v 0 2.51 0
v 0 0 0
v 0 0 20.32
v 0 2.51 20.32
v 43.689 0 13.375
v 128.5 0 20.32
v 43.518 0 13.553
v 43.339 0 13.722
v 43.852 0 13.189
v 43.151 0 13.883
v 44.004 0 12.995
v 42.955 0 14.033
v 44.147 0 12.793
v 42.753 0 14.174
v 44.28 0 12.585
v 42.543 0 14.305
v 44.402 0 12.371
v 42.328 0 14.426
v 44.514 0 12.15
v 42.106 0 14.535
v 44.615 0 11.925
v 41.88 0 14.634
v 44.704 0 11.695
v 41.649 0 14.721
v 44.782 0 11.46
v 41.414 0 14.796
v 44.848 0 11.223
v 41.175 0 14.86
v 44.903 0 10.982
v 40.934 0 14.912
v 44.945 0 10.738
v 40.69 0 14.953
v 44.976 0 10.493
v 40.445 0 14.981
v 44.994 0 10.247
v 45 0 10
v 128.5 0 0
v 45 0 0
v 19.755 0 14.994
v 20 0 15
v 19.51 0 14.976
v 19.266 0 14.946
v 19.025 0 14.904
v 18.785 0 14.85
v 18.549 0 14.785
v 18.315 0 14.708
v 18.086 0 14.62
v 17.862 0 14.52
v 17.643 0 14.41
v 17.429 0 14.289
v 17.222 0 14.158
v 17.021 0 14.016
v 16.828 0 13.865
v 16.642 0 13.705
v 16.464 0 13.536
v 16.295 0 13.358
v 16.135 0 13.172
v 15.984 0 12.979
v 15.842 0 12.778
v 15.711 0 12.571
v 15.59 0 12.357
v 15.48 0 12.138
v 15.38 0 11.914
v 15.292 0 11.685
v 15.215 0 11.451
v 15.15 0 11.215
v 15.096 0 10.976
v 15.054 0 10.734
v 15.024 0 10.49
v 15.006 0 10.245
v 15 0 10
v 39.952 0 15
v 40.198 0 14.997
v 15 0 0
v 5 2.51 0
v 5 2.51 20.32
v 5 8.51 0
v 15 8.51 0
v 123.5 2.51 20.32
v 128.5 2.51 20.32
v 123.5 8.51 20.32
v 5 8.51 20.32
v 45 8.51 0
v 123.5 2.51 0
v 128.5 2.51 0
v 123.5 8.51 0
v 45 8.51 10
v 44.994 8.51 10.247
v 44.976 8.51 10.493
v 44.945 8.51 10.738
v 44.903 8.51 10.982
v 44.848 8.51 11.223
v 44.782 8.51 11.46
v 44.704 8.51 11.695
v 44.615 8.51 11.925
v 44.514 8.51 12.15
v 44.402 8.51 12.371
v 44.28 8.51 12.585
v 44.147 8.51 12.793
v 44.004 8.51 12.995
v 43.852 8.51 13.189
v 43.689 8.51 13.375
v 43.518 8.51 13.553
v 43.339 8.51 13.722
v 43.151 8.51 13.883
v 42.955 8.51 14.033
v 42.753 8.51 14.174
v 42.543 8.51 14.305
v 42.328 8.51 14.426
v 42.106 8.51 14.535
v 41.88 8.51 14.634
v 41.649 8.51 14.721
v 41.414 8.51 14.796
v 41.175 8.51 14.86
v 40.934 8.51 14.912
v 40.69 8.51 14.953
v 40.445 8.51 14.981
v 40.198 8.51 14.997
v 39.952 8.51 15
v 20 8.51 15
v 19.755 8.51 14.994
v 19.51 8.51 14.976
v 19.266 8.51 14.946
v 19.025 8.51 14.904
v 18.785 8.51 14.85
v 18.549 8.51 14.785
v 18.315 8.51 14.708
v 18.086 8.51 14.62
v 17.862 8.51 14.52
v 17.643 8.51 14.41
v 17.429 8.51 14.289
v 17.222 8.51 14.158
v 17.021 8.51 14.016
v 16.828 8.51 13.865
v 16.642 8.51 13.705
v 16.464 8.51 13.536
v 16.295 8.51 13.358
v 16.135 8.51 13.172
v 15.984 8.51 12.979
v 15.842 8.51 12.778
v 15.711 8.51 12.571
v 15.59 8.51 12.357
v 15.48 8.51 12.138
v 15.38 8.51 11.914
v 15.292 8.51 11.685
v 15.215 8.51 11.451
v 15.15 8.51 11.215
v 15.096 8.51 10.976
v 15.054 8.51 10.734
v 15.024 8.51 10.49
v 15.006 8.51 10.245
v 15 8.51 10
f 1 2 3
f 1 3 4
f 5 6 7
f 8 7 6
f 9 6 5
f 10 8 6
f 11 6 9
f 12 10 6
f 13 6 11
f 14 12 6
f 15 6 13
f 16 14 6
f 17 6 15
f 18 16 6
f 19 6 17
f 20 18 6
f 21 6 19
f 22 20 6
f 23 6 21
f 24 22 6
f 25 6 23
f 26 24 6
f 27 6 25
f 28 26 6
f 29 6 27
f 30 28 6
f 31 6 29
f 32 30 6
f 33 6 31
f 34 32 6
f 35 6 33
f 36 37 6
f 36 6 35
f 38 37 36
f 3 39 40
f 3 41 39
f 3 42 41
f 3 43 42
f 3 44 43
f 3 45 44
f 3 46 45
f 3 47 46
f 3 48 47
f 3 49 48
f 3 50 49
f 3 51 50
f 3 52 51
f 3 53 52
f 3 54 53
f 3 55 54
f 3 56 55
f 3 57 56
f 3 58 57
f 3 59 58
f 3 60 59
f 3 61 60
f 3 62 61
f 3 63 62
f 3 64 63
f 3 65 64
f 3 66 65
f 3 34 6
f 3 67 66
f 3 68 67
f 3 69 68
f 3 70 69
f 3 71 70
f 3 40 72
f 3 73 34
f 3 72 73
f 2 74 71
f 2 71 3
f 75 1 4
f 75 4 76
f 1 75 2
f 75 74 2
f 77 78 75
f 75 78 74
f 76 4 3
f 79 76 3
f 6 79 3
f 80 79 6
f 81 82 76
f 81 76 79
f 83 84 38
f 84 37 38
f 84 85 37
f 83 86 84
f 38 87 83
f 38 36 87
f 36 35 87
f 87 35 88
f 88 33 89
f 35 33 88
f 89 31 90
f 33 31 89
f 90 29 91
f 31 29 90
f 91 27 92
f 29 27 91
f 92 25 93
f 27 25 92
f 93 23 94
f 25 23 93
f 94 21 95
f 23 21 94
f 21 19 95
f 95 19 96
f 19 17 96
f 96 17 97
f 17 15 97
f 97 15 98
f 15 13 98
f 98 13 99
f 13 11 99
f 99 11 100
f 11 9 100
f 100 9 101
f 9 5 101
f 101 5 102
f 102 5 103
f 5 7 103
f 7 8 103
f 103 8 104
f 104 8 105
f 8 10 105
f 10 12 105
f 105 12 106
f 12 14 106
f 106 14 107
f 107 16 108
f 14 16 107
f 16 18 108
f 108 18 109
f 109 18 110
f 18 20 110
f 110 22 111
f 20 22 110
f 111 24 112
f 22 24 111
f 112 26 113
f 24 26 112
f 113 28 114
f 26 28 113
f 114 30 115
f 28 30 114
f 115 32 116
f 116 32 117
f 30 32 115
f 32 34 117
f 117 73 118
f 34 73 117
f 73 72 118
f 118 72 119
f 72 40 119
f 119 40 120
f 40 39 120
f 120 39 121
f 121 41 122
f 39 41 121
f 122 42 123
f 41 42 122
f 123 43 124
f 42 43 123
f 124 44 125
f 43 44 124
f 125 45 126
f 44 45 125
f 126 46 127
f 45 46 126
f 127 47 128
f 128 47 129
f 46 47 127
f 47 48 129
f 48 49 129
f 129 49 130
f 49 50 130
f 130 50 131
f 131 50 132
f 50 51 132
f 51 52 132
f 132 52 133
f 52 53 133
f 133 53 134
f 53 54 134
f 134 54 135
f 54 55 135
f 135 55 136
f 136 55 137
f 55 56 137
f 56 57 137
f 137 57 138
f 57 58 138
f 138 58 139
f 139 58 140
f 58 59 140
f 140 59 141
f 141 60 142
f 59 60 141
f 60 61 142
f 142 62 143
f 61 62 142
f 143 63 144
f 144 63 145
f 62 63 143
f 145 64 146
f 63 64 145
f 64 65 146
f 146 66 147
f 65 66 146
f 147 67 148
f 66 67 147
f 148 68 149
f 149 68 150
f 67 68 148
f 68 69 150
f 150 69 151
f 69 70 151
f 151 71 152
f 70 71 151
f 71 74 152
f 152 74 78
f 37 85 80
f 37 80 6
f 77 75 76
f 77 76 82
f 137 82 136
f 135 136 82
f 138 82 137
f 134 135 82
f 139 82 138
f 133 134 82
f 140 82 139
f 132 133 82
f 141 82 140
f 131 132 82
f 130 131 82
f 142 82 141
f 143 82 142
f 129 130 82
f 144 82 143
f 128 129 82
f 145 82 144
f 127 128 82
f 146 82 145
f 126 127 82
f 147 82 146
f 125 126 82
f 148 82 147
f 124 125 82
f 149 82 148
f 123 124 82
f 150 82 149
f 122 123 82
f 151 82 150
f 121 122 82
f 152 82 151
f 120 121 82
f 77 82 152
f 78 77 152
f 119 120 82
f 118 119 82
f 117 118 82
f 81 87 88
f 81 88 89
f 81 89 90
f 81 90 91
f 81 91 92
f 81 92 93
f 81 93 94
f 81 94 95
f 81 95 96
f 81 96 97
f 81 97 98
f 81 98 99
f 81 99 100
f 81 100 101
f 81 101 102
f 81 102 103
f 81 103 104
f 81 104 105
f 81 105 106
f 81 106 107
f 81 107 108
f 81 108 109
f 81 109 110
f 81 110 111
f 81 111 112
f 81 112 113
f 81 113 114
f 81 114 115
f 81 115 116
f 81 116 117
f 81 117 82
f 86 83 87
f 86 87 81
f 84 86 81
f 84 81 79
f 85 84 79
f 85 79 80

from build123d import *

# Parameters (mm, degrees)
PAD_DEPTH    = 20.32
POCKET_DEPTH = 21


with BuildPart() as part:
    # Sketch → Pad (new body)
    with BuildSketch(Plane.XY):
        Polygon((0, 0), (0, 2.51), (5, 2.51), (4.999966, 8.51), (123.5, 8.51), (123.5, 2.51), (128.5, 2.51), (128.5, 0), align=None)
    extrude(amount=PAD_DEPTH)

    # Sketch002 → Pocket (cut)
    with BuildSketch(Plane.XZ):
        with BuildLine():
            ThreePointArc((20, 15.000243), (16.464298, 13.535707), (14.999762, 10.000005))
            Line((14.999762, 10.000005), (14.999762, -25.27))
            Line((14.999762, -25.27), (45, -25.27))
            Line((45, -25.27), (45, 10.000238))
            ThreePointArc((45, 10.000238), (43.518366, 13.552956), (39.951518, 15.000243))
            Line((39.951518, 15.000243), (20, 15.000243))
        make_face()
    extrude(amount=-POCKET_DEPTH, mode=Mode.SUBTRACT)


solid = part.part
